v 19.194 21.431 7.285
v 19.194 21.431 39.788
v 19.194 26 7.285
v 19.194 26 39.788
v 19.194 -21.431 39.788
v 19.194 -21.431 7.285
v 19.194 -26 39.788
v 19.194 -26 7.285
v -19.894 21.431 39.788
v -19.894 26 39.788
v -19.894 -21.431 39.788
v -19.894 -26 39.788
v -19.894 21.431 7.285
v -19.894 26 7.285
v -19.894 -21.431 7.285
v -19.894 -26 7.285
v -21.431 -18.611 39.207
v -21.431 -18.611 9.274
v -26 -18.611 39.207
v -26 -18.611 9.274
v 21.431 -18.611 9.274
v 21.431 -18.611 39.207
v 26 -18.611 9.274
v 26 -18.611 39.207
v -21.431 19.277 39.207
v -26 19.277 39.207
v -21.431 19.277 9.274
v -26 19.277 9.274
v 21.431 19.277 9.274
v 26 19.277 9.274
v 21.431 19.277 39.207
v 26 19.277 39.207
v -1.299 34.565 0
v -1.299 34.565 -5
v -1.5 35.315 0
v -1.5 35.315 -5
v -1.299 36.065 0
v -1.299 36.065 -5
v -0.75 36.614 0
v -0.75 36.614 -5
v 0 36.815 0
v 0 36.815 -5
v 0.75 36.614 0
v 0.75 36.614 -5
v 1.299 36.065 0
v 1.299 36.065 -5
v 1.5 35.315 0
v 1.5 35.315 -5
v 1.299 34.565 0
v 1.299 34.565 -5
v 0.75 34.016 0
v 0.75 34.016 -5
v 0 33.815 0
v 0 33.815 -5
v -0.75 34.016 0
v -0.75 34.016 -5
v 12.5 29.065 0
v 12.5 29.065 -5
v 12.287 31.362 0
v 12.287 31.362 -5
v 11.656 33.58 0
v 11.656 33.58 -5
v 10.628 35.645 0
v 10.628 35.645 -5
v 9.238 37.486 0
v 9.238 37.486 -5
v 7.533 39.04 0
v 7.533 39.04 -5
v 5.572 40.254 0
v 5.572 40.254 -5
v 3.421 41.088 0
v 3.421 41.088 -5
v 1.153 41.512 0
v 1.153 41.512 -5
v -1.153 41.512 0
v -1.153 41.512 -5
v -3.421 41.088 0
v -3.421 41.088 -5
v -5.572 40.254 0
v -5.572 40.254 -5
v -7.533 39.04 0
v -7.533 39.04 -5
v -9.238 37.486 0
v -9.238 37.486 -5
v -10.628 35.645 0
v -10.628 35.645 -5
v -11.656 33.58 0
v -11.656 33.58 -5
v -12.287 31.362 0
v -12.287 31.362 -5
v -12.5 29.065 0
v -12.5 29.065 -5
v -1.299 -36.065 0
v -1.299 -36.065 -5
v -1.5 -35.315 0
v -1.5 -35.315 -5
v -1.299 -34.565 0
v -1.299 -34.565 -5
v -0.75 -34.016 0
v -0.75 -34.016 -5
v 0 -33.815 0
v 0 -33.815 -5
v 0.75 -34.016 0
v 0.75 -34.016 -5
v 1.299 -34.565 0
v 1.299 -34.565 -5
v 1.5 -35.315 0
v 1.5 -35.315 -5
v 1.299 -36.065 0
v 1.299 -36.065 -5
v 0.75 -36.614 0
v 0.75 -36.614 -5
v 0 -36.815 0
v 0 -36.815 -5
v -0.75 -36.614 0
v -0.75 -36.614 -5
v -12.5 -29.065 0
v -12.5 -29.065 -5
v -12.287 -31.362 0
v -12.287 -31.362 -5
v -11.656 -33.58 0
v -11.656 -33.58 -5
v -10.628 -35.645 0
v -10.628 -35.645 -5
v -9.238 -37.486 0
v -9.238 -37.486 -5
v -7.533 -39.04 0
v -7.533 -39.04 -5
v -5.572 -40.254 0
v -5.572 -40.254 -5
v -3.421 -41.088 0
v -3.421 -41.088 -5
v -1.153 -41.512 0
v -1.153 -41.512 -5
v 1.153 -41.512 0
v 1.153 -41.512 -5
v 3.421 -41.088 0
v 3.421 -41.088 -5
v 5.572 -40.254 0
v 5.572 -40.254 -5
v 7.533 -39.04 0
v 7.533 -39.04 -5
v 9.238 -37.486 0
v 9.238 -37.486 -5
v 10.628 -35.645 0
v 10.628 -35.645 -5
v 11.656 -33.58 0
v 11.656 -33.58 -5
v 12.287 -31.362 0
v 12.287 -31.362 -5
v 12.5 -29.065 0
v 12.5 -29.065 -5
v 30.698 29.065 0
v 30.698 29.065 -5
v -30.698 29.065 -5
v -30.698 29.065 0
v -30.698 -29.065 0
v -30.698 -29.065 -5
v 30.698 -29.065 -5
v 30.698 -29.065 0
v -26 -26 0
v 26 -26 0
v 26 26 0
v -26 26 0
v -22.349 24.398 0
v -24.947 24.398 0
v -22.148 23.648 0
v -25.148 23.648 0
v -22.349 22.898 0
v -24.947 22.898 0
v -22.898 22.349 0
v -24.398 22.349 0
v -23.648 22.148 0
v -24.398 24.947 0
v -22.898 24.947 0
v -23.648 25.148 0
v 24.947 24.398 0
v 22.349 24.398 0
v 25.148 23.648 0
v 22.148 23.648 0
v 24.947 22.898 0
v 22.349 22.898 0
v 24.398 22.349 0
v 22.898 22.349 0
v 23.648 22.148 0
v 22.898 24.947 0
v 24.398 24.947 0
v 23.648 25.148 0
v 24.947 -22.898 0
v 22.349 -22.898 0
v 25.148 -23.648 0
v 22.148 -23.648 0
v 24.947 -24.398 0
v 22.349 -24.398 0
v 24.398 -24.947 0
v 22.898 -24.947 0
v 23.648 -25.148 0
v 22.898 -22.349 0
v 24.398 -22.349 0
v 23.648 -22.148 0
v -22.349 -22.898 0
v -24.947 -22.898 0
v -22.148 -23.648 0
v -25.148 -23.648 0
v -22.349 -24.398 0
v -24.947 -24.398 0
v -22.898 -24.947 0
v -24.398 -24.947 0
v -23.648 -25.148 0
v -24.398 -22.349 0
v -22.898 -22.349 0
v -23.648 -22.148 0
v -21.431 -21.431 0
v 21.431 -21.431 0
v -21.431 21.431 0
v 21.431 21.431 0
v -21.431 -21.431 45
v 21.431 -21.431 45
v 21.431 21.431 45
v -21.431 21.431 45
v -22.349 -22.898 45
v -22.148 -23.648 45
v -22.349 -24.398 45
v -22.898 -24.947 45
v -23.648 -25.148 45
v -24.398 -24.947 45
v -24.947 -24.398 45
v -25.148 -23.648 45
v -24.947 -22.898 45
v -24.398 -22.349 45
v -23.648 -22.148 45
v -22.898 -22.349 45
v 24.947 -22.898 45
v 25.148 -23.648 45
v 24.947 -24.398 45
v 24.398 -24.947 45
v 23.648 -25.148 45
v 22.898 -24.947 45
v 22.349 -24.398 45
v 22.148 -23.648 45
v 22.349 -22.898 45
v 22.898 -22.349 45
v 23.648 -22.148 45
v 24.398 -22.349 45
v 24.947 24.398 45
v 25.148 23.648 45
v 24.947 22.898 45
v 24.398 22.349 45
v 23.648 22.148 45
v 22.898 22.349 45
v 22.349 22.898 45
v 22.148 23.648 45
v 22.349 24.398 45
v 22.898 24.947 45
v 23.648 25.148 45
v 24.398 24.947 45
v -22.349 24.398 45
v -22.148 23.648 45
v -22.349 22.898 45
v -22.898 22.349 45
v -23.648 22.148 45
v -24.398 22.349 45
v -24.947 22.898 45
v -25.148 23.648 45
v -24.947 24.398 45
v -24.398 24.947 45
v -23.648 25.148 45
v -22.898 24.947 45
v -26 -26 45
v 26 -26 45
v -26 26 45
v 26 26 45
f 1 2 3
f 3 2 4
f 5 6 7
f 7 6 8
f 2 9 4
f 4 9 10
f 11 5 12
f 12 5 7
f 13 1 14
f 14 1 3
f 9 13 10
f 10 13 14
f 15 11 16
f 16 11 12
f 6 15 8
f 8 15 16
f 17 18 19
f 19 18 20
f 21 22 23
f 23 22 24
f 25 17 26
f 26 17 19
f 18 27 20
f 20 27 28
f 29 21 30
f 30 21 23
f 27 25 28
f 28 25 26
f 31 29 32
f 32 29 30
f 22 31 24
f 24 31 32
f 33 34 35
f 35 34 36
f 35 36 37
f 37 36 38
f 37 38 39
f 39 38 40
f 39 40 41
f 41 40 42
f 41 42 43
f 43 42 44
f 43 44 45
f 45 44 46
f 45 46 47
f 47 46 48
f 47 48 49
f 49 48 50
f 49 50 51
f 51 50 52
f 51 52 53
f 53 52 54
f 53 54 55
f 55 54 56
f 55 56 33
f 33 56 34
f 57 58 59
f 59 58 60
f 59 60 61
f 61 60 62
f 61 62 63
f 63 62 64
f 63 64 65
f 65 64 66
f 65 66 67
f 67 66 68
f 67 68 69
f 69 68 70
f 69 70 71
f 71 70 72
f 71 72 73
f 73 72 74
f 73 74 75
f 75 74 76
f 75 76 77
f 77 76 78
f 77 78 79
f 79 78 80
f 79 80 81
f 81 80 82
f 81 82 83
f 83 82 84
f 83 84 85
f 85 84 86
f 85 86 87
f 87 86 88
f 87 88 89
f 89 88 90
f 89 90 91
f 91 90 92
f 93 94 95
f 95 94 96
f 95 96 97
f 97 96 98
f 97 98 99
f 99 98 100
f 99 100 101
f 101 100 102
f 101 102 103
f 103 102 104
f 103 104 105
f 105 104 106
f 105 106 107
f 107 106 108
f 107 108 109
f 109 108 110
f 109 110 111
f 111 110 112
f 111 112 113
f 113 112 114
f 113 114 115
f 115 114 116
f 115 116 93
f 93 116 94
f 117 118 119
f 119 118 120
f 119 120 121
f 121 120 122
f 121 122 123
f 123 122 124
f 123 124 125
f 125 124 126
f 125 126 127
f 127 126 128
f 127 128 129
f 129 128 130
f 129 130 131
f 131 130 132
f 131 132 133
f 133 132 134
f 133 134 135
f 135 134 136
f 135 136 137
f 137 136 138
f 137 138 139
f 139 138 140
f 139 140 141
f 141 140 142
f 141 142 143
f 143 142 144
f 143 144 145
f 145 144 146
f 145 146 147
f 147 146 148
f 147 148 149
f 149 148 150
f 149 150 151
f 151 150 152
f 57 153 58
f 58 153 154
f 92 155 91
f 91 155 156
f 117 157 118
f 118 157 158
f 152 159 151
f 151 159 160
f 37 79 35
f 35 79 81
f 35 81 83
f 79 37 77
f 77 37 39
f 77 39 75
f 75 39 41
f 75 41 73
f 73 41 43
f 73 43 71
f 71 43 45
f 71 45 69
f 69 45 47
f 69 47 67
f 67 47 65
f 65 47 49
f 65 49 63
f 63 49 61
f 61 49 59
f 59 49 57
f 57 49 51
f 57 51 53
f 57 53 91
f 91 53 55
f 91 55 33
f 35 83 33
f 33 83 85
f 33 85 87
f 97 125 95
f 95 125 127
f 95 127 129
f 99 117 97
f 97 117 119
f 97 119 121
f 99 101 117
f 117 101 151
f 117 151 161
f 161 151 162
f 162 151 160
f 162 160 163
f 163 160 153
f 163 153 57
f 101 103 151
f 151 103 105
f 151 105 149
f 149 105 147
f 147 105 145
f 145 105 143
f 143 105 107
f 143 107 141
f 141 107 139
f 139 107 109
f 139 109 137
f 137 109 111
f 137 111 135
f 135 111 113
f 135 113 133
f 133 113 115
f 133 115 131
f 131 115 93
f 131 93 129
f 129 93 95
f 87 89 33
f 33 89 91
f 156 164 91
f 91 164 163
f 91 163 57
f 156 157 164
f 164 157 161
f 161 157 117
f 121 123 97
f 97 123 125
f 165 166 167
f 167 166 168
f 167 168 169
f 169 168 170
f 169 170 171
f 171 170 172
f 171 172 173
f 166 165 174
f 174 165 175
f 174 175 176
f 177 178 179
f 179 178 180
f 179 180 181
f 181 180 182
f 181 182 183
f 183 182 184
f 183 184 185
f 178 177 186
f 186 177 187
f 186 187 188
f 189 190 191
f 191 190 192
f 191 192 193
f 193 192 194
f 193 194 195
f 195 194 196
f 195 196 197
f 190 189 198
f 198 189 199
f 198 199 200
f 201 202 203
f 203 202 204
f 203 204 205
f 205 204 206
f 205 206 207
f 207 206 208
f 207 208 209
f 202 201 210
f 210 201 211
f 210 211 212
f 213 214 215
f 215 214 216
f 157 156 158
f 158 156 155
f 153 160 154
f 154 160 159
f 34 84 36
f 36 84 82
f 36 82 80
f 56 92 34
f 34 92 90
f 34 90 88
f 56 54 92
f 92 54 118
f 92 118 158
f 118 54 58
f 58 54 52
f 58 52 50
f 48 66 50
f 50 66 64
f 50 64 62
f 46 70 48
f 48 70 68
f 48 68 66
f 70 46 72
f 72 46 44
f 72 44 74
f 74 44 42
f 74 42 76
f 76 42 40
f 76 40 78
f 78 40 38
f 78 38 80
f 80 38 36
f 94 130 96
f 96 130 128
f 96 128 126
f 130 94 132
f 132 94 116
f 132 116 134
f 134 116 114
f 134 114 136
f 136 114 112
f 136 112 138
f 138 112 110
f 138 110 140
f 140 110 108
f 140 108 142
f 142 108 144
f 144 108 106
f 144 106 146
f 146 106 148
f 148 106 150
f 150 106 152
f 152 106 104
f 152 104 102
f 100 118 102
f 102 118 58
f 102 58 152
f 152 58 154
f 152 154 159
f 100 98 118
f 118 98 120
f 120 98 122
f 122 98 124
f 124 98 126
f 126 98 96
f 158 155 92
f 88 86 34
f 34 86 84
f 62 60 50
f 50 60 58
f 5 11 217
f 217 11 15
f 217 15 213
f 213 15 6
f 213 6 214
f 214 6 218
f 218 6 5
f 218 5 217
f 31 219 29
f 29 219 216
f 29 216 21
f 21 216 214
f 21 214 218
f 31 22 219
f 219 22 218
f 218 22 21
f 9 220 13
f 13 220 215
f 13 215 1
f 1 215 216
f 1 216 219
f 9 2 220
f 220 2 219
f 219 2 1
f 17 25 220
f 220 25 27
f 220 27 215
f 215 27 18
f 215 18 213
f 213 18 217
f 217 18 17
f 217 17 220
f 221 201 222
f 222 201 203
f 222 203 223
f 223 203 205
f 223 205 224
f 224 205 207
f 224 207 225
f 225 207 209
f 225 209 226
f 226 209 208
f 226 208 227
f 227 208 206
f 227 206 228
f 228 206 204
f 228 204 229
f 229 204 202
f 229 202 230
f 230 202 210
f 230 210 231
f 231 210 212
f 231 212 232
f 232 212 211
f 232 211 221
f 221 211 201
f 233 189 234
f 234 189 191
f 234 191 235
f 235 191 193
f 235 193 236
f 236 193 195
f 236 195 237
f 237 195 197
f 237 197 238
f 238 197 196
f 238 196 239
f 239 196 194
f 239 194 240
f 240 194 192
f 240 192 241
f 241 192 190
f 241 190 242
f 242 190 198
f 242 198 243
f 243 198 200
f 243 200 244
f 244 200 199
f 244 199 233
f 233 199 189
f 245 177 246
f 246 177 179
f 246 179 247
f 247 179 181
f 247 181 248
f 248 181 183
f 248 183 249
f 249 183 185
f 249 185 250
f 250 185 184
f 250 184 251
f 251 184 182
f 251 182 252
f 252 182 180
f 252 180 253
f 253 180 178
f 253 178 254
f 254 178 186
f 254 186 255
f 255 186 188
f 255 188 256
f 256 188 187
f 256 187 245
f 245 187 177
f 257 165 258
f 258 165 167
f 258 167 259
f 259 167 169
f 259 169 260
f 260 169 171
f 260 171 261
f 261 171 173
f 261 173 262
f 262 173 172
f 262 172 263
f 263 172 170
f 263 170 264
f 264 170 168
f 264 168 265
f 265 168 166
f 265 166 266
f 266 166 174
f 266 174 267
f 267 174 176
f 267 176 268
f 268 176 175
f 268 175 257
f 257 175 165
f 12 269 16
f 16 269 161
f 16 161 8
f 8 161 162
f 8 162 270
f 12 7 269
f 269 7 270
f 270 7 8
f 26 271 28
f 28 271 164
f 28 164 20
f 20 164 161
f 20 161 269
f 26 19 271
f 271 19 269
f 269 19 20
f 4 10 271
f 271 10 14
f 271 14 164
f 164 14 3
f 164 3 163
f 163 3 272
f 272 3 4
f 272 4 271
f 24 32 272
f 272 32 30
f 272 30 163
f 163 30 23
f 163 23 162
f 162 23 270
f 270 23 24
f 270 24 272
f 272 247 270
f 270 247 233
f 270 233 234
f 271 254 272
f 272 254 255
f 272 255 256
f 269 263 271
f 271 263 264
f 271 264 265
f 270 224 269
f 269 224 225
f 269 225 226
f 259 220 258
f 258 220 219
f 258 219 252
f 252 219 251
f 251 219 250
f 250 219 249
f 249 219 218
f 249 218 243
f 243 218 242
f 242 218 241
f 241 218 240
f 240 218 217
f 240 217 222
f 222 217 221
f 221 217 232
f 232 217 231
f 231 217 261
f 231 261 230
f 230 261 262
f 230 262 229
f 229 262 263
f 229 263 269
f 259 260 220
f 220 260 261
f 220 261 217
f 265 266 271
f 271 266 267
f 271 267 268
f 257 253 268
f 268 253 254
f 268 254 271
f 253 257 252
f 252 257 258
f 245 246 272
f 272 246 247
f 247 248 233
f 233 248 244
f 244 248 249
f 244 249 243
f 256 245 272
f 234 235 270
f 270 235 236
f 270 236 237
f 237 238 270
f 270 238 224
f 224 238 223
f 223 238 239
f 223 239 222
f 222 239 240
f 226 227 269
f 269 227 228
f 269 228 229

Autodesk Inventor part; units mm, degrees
ref_plane "YZ Plane" through (0, 0, 0) normal (1, 0, 0) x (0, 1, 0)
ref_plane "XZ Plane" through (0, 0, 0) normal (0, 1, 0) x (-1, 0, 0)
ref_plane "XY Plane" through (0, 0, 0) normal (0, 0, 1) x (1, 0, 0)
sketch "Boceto1" plane through (0, 0, 0) normal (0, 0, 1) x (1, 0, 0)
  line L0 (-26, -26) -> (26, -26)
  line L1 (26, -26) -> (26, 26)
  line L2 (26, 26) -> (-26, 26)
  line L3 (-26, 26) -> (-26, -26)
  line L4 (-26, -26) -> (26, 26) construction
  line L5 (26, -26) -> (-26, 26) construction
  circle A0 centre (-23.6478, 23.6478) radius 1.5
  circle A1 centre (23.6478, 23.6478) radius 1.5
  circle A2 centre (23.6478, -23.6478) radius 1.5
  line L6 (-21.4311, -21.4311) -> (21.4311, -21.4311)
  line L7 (21.4311, -21.4311) -> (21.4311, 21.4311)
  line L8 (21.4311, 21.4311) -> (-21.4311, 21.4311)
  line L9 (-21.4311, 21.4311) -> (-21.4311, -21.4311)
  line L10 (-21.4311, -21.4311) -> (21.4311, 21.4311) construction
  line L11 (21.4311, -21.4311) -> (-21.4311, 21.4311) construction
  circle A3 centre (-23.6478, -23.6478) radius 1.5
  point P0 (0, 0)
  dimension "d0" = 52
  dimension "d1" = 52
  dimension "d2" = 3
  dimension "d3" = 3
  dimension "d4" = 3
  dimension "d6" = 3
extrude "Extrusión1" add sketch "Boceto1" along normal blind 45
sketch "Boceto2" plane through (0, 0, 0) normal (0, 0, -1) x (-1, 0, 0)
  line L0 (30.6977, 29.0649) -> (-30.6977, 29.0649)
  line L1 (-30.6977, 29.0649) -> (-30.6977, -29.0649)
  line L2 (-30.6977, -29.0649) -> (30.6977, -29.0649)
  line L3 (30.6977, -29.0649) -> (30.6977, 29.0649)
  line L4 (30.6977, 29.0649) -> (-30.6977, -29.0649) construction
  line L5 (-30.6977, 29.0649) -> (30.6977, -29.0649) construction
  point P0 (0, 0)
extrude "Extrusión2" add sketch "Boceto2" along normal blind 5
thread "Rosca1" size "M3x0.5" class "6H" standard "ANSI Metric M Profile" length 5
thread "Rosca2" size "M3x0.5" class "6H" standard "ANSI Metric M Profile" length 5
thread "Rosca3" size "M3x0.5" class "6H" standard "ANSI Metric M Profile" length 5
thread "Rosca4" size "M3x0.5" class "6H" standard "ANSI Metric M Profile" length 5
sketch "Boceto3" plane through (0, 0, -5) normal (0, 0, -1) x (-1, 0, 0)
  line L0 (-30.6977, -29.0649) -> (30.6977, -29.0649) projected
  arc A0 (-12.5, -29.0649) -> (12.5, -29.0649) centre (0, -29.0649) ccw
  line L1 (30.6977, 29.0649) -> (-30.6977, 29.0649) projected
  arc A1 (12.5, 29.0649) -> (-12.5, 29.0649) centre (0, 29.0649) ccw
  circle A2 centre (0, -35.3149) radius 1.5
  circle A3 centre (0, 35.3149) radius 1.5
  point P0 (0, 0)
  dimension "d19" = 25
  dimension "d20" = 25
  dimension "d21" = 3
  dimension "d22" = 3
extrude "Extrusión3" add sketch "Boceto3" against normal blind 5
thread "Rosca5" size "M3x0.5" class "6H" standard "ANSI Metric M Profile" length 5
thread "Rosca6" size "M3x0.5" class "6H" standard "ANSI Metric M Profile" length 5
sketch "Boceto4" plane through (26, -26, 45) normal (1, 0, 0) x (0, 0, -1)
  line L0 (5.7927, 7.3891) -> (35.7255, 7.3891)
  line L1 (35.7255, 7.3891) -> (35.7255, 45.2774)
  line L2 (35.7255, 45.2774) -> (5.7927, 45.2774)
  line L3 (5.7927, 45.2774) -> (5.7927, 7.3891)
  point P0 (45, 26)
extrude "Extrusión4" cut sketch "Boceto4" against normal blind 66
sketch "Boceto5" plane through (-26, 26, 45) normal (0, 1, 0) x (1, 0, 0)
  line L0 (45.1937, 5.2117) -> (6.1058, 5.2117)
  line L1 (6.1058, 5.2117) -> (6.1058, 37.7148)
  line L2 (6.1058, 37.7148) -> (45.1937, 37.7148)
  line L3 (45.1937, 37.7148) -> (45.1937, 5.2117)
  point P0 (26, 45)
extrude "Extrusión5" cut sketch "Boceto5" against normal blind 66
properties part number "Base para Driver Corregida"
